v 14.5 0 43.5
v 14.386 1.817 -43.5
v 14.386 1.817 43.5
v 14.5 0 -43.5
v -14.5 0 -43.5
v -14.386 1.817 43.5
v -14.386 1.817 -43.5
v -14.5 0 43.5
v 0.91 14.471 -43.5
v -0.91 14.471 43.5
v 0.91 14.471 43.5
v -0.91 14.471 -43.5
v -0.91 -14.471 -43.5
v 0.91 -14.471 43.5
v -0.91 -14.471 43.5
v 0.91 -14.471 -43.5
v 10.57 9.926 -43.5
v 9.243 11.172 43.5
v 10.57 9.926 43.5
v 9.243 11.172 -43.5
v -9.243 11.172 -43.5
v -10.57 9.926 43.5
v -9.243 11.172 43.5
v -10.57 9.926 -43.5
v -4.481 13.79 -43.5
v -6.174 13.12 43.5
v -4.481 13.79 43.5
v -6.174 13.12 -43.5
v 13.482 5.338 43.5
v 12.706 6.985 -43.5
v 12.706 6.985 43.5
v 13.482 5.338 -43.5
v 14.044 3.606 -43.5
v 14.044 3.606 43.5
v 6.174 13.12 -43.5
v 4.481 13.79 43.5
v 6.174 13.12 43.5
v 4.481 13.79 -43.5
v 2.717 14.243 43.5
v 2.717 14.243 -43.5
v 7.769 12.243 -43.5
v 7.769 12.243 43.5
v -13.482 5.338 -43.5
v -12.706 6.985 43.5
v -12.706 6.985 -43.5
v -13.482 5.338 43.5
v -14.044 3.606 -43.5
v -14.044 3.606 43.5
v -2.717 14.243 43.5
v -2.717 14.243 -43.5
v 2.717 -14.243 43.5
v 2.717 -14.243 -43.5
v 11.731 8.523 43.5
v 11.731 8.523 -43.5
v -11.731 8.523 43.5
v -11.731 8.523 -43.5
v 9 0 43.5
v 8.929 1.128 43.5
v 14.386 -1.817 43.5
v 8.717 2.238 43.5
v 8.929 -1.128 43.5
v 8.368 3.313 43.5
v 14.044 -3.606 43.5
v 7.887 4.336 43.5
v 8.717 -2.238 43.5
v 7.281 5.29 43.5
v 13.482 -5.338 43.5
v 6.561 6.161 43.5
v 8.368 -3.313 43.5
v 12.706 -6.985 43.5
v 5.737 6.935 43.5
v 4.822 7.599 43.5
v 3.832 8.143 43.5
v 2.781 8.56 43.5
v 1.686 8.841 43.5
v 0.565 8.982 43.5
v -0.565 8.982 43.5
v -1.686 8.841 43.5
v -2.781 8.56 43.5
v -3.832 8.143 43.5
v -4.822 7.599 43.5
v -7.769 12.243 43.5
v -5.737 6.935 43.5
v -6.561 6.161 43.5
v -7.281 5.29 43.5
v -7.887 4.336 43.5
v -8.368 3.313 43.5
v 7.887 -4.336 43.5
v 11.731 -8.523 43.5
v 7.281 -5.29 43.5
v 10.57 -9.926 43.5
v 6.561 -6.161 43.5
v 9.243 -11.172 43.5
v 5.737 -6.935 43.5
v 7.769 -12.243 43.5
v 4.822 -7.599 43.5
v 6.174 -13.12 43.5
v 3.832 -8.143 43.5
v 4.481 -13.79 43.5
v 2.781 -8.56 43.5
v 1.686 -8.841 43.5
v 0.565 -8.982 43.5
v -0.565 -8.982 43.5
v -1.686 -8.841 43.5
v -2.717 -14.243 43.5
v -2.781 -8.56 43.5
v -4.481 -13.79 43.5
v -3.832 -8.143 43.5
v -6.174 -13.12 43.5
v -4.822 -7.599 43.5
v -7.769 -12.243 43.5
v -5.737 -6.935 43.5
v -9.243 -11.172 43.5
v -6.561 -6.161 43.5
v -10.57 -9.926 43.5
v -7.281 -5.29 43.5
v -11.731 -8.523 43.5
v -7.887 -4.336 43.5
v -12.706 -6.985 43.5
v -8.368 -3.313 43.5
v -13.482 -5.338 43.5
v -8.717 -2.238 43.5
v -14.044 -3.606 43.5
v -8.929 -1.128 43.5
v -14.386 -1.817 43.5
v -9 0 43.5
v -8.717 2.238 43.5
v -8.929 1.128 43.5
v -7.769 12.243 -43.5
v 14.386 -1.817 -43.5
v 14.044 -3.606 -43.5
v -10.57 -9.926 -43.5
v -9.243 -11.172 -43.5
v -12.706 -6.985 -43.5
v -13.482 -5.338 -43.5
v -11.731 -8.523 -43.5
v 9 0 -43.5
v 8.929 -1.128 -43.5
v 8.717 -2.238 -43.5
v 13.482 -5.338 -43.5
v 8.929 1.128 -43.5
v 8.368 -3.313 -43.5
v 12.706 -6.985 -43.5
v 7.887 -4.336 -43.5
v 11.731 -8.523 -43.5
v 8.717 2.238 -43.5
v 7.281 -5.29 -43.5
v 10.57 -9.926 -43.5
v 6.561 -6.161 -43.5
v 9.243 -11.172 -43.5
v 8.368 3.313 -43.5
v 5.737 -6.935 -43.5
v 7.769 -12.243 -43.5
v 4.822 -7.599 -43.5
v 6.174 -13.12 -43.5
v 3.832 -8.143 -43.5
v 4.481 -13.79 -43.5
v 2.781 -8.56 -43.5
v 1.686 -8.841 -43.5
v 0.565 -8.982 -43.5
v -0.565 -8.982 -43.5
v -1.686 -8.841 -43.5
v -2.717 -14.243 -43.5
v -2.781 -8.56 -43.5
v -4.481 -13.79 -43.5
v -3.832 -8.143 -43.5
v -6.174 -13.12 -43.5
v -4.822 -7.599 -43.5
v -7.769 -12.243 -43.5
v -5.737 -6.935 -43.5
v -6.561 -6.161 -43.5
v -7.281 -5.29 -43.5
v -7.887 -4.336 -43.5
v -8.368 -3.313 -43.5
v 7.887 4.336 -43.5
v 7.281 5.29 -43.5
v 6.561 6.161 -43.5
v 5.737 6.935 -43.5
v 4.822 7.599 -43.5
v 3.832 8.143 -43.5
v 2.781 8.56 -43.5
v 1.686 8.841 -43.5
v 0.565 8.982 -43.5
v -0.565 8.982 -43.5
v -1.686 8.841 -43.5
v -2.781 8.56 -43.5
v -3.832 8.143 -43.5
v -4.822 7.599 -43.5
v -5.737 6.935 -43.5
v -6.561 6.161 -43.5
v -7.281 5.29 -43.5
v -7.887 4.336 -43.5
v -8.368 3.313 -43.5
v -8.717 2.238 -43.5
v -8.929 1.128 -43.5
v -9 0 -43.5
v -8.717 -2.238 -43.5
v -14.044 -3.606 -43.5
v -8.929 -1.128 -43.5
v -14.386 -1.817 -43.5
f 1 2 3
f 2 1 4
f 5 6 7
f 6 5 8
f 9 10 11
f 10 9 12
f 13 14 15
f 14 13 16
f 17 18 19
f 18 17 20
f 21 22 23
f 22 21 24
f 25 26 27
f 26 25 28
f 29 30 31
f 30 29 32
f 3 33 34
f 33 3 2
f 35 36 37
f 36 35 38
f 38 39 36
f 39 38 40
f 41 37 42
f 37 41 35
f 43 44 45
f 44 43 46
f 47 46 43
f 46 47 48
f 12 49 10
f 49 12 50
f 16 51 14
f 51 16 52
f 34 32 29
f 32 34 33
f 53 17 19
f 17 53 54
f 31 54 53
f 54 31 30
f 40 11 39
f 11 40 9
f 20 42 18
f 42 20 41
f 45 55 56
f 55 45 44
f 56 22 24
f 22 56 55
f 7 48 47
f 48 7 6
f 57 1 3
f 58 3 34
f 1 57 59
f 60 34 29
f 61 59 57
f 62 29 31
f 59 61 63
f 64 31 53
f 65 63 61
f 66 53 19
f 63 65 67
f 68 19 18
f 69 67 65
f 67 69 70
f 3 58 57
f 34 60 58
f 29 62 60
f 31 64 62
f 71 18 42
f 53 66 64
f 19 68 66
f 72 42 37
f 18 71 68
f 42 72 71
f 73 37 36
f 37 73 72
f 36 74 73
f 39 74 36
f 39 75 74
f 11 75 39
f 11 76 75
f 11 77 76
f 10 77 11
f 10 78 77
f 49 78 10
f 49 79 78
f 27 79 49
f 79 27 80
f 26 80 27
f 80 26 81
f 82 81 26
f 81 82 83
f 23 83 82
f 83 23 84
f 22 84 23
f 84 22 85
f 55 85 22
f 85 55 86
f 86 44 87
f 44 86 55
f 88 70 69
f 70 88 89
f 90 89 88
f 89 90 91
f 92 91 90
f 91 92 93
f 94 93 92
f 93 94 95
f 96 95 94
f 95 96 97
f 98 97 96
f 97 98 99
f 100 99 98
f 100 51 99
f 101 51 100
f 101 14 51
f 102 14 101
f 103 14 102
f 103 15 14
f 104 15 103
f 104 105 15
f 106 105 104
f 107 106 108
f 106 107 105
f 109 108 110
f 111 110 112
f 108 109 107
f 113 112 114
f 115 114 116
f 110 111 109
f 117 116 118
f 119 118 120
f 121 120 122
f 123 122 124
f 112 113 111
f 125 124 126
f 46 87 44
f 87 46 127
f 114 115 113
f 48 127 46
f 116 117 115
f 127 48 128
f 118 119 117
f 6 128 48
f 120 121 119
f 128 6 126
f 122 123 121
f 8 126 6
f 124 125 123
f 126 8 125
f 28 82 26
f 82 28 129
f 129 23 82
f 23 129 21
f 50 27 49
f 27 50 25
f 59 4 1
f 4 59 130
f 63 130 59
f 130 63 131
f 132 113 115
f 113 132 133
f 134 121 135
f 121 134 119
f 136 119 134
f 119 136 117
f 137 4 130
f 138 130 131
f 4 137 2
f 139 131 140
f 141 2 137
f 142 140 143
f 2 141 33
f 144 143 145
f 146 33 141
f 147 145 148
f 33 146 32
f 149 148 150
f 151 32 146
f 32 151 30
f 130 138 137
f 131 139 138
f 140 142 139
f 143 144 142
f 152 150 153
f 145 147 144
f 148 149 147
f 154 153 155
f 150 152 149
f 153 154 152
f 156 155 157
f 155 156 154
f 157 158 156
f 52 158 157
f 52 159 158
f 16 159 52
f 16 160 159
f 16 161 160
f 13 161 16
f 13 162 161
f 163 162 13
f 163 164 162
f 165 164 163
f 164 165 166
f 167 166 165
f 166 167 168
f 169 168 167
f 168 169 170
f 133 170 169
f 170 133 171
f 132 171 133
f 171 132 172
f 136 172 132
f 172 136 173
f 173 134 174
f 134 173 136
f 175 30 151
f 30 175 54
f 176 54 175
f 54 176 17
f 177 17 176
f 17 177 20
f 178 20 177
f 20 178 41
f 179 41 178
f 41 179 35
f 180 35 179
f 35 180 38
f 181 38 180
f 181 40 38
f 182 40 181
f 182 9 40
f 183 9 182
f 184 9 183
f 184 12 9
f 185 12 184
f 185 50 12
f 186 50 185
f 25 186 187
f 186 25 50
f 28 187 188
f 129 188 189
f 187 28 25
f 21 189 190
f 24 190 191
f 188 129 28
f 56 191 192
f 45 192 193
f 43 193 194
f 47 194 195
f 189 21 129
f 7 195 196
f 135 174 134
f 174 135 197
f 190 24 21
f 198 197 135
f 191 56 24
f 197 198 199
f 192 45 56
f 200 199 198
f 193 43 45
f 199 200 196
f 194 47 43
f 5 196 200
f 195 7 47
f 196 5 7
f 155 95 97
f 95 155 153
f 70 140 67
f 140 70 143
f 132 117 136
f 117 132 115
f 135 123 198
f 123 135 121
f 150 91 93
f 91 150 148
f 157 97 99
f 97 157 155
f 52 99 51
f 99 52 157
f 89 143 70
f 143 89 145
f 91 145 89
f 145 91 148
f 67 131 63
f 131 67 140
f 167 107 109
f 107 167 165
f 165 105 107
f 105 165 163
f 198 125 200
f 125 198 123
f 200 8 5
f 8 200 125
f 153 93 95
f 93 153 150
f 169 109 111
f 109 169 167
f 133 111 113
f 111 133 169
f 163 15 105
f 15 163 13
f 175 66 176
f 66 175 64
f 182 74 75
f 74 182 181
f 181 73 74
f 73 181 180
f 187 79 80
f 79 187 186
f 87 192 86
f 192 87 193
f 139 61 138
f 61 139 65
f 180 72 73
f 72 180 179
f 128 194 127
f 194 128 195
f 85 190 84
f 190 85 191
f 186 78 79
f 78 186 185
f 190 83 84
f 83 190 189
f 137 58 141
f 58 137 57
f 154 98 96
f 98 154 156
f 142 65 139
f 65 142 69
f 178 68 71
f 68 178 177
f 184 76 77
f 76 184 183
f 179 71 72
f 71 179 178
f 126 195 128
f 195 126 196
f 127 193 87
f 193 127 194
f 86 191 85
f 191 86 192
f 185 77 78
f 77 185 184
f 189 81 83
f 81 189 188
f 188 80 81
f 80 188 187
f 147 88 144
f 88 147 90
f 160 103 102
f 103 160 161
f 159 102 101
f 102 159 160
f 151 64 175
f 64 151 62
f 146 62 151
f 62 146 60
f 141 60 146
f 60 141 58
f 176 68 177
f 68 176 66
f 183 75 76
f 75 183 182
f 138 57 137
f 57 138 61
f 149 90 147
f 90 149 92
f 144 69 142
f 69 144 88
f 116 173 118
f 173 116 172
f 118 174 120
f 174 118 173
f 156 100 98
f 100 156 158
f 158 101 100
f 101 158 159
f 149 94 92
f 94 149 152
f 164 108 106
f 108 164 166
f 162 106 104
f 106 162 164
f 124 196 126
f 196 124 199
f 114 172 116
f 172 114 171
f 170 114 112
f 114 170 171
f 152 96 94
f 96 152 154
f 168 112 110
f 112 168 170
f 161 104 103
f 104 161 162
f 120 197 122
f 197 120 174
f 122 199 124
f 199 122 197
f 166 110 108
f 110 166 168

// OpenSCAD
$fn = 50;


difference() {
	union() {
		translate(v = [0, 0, -43.5000000000]) {
			cylinder(h = 87, r = 14.5000000000);
		}
	}
	union() {
		translate(v = [0, 0, -100.0000000000]) {
			cylinder(h = 200, r = 9);
		}
	}
}
